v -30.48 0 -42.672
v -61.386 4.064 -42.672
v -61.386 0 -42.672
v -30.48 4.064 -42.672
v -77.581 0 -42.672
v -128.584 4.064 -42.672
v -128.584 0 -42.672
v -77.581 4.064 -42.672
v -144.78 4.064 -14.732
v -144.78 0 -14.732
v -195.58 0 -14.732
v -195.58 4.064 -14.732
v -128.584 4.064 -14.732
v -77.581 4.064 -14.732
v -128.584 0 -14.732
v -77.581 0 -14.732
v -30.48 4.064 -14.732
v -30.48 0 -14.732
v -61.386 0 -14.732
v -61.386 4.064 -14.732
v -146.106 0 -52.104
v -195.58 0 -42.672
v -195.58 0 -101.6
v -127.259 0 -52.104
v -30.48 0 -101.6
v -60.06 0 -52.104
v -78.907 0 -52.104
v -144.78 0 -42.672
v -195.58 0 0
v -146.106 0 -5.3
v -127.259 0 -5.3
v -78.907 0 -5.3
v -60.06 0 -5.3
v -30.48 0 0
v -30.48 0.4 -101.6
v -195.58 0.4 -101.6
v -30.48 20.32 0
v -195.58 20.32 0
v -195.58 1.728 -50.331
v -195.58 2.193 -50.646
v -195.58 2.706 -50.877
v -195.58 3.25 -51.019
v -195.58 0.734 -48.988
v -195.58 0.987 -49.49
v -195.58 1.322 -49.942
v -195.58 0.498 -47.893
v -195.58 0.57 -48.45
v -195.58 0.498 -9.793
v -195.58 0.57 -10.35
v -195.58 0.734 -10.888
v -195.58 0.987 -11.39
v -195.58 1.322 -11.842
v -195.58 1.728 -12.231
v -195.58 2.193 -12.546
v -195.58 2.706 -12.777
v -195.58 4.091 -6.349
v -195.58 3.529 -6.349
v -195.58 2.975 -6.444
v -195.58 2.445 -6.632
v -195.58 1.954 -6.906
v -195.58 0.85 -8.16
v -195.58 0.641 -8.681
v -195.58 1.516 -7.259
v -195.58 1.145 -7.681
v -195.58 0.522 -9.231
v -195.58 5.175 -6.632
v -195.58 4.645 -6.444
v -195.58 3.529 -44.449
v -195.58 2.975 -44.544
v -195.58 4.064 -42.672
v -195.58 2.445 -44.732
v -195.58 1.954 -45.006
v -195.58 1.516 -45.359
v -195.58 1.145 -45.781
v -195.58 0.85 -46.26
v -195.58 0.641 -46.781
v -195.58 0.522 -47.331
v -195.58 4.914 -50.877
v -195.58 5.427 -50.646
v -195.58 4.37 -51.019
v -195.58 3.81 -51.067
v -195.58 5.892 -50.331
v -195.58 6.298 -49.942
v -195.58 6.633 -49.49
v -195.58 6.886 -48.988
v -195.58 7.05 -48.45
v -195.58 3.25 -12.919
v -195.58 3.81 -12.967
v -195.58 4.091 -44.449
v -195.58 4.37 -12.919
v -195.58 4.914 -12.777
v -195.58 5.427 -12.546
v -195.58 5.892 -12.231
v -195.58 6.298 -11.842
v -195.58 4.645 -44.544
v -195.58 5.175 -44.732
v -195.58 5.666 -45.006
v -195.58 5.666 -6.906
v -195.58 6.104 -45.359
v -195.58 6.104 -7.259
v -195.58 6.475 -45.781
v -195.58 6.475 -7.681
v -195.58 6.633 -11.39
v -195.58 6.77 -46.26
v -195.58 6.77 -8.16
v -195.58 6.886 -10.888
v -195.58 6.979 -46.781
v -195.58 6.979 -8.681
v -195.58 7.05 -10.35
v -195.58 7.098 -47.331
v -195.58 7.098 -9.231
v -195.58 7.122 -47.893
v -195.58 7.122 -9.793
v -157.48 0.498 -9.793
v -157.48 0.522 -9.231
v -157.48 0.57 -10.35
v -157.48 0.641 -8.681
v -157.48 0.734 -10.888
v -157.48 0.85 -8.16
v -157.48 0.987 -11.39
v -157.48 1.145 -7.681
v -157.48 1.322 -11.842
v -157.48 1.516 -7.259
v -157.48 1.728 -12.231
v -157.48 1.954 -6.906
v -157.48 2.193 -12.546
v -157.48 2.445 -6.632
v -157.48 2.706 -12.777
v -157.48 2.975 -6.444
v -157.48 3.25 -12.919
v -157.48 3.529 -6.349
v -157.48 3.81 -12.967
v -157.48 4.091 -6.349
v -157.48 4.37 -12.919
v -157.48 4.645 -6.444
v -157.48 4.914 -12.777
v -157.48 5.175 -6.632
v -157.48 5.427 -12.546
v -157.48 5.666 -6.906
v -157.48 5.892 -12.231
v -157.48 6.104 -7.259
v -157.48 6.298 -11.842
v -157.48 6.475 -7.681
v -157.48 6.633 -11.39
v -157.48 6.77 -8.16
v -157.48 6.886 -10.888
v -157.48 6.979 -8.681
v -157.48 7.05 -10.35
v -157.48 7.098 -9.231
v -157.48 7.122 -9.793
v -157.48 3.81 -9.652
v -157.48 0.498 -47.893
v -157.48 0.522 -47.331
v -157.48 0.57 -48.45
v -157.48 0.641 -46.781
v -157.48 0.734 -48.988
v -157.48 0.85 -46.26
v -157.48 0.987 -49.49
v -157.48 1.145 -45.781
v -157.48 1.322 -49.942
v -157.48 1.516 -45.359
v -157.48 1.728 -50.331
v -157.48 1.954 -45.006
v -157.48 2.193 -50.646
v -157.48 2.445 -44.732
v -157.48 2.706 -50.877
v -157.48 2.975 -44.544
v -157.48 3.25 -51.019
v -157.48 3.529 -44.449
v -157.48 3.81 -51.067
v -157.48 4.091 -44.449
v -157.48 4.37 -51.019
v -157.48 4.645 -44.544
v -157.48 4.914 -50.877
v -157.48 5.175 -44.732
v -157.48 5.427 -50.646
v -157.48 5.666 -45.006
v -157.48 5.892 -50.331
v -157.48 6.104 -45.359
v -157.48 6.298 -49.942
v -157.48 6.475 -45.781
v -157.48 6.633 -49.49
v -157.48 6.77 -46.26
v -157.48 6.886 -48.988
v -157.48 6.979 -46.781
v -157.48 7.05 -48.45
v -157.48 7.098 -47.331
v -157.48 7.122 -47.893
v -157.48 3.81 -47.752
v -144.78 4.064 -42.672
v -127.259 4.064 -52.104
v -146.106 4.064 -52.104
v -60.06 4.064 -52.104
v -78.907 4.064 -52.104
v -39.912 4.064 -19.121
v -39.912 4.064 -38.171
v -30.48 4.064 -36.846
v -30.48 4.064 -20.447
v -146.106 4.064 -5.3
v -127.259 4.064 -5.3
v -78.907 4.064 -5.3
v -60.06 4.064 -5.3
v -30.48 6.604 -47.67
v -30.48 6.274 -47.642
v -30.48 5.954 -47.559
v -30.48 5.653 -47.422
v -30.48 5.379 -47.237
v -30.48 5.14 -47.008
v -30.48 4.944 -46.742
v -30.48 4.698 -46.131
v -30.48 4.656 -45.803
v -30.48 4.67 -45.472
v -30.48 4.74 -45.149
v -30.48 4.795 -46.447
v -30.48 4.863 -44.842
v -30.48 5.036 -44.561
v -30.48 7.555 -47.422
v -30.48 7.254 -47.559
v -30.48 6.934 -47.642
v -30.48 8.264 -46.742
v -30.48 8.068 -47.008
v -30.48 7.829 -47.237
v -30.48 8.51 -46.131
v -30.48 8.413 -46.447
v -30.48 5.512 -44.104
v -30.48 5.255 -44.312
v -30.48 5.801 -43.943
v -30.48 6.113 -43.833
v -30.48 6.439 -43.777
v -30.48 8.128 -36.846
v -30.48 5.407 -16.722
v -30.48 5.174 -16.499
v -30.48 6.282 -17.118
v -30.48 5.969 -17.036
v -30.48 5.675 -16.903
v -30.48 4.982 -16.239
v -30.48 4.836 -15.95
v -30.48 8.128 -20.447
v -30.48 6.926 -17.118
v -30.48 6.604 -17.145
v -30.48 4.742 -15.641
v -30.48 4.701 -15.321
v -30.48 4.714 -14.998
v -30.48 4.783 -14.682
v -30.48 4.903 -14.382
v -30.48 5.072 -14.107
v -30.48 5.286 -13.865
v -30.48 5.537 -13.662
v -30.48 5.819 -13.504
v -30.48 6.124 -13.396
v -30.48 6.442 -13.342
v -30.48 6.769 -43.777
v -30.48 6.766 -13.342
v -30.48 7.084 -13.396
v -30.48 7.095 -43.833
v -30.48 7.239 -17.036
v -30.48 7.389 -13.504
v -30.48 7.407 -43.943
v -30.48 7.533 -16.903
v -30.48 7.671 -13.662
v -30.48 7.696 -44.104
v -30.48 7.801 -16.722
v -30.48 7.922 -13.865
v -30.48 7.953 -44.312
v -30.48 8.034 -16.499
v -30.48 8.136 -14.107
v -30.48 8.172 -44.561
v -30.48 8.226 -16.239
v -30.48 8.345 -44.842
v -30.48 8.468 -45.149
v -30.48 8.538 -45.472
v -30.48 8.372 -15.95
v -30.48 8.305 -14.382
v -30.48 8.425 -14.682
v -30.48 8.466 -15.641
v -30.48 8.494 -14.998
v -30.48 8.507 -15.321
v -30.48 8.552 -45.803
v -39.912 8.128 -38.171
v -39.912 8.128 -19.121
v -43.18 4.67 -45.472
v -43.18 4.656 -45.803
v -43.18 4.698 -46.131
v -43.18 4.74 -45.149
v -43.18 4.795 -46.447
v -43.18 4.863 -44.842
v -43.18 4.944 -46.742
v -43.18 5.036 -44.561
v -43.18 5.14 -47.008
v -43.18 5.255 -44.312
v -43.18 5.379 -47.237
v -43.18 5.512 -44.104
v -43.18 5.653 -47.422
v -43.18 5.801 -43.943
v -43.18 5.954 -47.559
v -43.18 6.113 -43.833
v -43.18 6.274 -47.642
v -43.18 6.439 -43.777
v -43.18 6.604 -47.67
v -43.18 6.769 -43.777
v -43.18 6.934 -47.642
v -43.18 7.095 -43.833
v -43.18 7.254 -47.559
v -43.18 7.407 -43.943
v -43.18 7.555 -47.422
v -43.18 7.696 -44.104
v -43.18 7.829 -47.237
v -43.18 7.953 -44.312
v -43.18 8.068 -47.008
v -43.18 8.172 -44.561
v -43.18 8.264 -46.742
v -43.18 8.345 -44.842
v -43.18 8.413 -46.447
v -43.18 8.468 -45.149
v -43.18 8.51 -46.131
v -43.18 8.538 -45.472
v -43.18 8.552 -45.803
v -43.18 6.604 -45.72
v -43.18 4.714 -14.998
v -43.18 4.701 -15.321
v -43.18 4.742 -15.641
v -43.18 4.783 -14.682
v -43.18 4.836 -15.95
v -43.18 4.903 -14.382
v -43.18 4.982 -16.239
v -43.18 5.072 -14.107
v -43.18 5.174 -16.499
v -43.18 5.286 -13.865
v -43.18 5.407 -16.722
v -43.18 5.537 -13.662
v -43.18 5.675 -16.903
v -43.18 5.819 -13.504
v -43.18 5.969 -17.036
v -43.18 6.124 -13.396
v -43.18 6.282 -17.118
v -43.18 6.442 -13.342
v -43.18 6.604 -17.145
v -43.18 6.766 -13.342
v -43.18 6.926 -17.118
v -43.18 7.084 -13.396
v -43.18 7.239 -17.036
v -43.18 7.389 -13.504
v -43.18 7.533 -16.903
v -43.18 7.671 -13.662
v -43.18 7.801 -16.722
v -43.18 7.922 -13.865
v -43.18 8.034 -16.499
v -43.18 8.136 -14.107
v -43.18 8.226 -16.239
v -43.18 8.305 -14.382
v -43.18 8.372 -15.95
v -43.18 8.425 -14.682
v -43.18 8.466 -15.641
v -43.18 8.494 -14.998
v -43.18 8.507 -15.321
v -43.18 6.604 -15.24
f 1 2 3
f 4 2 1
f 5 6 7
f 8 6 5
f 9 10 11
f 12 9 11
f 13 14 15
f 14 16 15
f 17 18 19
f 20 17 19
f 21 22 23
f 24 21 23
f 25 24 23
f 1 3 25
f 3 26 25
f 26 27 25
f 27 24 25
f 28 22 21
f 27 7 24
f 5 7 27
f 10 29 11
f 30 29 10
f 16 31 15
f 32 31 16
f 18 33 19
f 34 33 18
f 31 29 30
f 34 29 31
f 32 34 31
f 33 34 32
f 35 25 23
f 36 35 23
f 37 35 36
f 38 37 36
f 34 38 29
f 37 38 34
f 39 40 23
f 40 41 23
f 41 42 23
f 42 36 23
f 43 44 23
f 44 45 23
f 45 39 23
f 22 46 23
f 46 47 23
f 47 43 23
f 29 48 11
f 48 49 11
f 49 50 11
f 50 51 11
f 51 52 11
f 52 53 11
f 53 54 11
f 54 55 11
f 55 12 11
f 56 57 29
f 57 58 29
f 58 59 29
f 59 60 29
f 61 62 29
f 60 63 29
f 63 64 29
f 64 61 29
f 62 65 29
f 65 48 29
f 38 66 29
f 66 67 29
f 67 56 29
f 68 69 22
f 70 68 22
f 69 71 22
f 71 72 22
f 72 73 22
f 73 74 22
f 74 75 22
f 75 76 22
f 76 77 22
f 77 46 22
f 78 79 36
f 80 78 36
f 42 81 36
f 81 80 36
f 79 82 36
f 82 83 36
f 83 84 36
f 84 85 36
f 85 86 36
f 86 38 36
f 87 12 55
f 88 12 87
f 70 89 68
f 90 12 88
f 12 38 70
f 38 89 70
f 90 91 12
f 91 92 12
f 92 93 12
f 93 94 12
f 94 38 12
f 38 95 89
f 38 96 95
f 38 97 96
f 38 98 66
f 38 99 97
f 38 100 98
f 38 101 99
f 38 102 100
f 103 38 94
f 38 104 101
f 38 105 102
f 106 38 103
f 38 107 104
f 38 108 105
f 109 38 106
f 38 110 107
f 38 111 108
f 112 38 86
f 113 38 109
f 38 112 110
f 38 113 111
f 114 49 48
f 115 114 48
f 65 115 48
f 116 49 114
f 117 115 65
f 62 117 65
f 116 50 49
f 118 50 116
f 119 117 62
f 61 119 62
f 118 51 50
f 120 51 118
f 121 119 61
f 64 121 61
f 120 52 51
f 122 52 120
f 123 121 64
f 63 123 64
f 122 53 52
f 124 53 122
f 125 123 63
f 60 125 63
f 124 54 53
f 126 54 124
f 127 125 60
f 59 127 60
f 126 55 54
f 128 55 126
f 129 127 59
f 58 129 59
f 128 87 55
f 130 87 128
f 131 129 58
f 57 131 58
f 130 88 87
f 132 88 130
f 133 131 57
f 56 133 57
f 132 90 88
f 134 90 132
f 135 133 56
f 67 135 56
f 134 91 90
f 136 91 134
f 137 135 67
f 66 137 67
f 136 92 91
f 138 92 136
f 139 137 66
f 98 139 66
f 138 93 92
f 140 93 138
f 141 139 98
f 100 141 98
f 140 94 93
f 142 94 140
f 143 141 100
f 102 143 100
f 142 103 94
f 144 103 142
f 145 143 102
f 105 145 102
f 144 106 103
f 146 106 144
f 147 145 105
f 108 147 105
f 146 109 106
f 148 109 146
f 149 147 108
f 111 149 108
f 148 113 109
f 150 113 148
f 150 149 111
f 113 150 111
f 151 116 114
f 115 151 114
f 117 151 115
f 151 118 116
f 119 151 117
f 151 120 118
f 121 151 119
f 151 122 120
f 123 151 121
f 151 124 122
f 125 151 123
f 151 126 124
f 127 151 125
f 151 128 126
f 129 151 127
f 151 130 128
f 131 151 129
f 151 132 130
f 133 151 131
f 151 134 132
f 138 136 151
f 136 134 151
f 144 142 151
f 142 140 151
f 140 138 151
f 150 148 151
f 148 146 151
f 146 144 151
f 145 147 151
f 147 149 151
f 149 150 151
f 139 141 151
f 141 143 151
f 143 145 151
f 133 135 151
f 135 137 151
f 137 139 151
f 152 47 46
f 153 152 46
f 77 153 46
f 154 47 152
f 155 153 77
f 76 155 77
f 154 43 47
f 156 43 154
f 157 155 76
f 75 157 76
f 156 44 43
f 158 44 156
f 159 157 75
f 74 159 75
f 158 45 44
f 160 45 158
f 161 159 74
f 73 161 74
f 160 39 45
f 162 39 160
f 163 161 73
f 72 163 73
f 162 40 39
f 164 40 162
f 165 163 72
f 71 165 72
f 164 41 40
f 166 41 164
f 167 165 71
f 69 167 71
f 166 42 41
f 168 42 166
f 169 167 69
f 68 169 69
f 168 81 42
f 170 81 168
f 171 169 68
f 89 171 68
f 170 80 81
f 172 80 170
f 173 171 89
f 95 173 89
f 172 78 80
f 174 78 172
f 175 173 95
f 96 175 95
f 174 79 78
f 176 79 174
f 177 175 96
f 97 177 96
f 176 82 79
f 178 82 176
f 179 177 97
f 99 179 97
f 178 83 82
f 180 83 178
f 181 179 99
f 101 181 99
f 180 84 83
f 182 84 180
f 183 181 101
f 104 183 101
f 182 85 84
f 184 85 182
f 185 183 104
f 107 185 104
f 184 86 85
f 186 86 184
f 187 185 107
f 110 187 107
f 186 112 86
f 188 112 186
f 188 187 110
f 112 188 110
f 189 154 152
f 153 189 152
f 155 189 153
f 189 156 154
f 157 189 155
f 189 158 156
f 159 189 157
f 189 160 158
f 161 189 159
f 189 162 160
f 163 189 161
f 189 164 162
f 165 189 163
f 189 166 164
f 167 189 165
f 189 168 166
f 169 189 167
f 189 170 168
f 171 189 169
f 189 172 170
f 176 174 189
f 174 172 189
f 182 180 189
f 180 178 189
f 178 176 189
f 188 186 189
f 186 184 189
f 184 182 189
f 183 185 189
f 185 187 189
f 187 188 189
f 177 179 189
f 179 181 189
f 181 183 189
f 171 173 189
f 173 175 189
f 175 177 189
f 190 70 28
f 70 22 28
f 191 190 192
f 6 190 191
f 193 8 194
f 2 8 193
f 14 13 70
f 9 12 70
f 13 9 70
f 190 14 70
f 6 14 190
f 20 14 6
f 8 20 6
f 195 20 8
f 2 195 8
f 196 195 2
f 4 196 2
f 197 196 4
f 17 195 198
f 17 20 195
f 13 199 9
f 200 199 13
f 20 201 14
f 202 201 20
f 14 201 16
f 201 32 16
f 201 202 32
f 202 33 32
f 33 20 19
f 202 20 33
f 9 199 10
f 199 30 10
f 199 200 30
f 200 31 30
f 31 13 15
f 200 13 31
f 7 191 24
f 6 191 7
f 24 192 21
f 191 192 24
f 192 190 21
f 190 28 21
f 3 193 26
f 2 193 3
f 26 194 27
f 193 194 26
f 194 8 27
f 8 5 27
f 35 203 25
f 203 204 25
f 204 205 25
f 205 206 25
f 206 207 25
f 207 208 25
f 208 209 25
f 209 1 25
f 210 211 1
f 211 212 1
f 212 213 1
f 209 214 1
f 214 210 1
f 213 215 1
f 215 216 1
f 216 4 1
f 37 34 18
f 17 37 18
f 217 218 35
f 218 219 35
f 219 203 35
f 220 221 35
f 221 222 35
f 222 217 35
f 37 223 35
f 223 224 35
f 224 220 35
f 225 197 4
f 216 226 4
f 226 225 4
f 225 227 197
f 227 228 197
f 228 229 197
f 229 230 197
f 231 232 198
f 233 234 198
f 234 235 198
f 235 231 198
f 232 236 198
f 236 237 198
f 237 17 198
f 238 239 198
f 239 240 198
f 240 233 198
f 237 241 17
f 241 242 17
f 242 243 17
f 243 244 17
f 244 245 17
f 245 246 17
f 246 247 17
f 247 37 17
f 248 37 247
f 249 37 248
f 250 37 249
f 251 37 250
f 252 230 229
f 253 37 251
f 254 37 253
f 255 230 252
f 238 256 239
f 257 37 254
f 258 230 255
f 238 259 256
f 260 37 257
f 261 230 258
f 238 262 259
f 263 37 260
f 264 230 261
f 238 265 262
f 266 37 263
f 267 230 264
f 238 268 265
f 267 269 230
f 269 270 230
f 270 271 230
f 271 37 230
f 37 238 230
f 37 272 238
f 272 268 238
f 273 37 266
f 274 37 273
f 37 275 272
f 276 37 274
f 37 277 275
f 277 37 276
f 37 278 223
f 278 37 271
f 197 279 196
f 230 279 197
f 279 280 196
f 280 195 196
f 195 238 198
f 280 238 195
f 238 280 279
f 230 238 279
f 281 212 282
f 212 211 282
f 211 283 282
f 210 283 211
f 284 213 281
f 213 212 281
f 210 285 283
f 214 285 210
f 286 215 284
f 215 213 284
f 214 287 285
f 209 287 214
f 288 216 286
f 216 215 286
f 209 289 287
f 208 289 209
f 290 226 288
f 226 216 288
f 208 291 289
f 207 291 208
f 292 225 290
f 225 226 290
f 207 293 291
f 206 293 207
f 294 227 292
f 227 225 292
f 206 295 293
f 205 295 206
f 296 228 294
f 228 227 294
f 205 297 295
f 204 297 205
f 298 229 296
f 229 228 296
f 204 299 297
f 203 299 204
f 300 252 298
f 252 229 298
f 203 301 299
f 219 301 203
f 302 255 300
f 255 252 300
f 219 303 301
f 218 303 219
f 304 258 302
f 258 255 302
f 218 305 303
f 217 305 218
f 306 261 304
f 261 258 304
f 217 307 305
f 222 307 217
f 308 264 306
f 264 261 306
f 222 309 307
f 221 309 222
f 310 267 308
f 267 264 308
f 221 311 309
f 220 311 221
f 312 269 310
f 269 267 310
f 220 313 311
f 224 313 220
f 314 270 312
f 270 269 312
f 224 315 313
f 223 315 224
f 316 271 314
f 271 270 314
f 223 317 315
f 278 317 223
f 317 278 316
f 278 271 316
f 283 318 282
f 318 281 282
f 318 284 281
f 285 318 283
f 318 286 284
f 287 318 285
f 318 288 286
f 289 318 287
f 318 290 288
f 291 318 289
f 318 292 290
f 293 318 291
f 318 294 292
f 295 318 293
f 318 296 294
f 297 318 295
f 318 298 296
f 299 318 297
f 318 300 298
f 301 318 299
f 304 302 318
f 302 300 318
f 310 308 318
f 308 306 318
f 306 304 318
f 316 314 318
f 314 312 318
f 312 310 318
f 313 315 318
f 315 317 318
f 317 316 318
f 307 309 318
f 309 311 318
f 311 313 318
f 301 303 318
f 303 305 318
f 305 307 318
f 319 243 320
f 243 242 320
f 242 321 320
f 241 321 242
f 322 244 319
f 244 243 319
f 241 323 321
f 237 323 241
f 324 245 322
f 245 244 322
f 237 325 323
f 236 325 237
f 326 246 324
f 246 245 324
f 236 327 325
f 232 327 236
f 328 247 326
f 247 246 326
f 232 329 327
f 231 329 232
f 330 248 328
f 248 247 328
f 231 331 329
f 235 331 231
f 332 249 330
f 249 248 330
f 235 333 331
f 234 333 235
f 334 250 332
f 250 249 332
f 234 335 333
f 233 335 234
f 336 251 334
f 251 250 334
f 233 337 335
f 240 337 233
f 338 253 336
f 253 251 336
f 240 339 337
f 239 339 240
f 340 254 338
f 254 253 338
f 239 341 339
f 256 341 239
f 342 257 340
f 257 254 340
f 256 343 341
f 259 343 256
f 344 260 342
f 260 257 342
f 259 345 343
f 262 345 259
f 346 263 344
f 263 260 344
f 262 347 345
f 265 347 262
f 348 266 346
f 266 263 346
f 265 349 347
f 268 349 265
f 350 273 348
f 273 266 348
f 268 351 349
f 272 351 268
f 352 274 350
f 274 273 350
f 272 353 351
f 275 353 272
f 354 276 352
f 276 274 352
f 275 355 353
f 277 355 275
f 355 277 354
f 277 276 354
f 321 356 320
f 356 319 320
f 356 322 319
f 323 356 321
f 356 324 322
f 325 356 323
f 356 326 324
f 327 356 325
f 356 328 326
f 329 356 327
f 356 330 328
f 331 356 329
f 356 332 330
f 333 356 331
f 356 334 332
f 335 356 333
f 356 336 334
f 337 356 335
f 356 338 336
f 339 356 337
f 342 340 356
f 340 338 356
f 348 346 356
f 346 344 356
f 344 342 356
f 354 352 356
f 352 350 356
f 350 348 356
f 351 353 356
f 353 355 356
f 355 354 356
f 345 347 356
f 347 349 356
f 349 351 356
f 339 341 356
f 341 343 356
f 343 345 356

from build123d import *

# Parameters (mm, degrees)
BOSS_EXTRUDE1_DEPTH = 195.58
SKETCH2_R           = 3.3147
CUT_EXTRUDE1_DEPTH  = 38.1
SKETCH3_W           = 27.94
SKETCH3_H           = 4.064
CUT_EXTRUDE2_DEPTH  = 405.649982083
CUT_EXTRUDE3_DEPTH  = 4.064
SKETCH7_W           = 101.6
SKETCH7_H           = 20.540040578
CUT_EXTRUDE5_DEPTH  = 226.06
CUT_EXTRUDE6_DEPTH  = 4.064
SKETCH10_R          = 1.905
SKETCH10_R_2        = 1.949893387
CUT_EXTRUDE7_DEPTH  = 12.7


with BuildPart() as part:
    # Sketch1 → Boss-Extrude1 (new, symmetric)
    with BuildSketch(Plane(origin=(0, 0, 0), x_dir=(0, 0, -1), z_dir=(1, 0, 0))):
        Polygon((0, 0), (0, 20.32), (101.6, 0.4), (101.6, 0), align=None)
    extrude(amount=BOSS_EXTRUDE1_DEPTH, both=True)

    # Sketch2 → Cut-Extrude1 (cut)
    with BuildSketch(Plane(origin=(195.58, 0, 0), x_dir=(0, 0, -1), z_dir=(1, 0, 0))):
        with Locations((9.652, 3.81)):
            Circle(SKETCH2_R)
        with Locations((47.752, 3.81)):
            Circle(SKETCH2_R)
    cut_extrude1 = extrude(amount=-CUT_EXTRUDE1_DEPTH, mode=Mode.SUBTRACT)

    # Mirror3: Cut-Extrude1 across plane
    add(cut_extrude1.mirror(Plane(origin=(0, 0, 0), x_dir=(0, 0, 1), z_dir=(1, 0, 0))), mode=Mode.SUBTRACT)

    # Sketch3 → Cut-Extrude2 (cut, through all)
    with BuildSketch(Plane.ZY.offset(195.58)):
        with Locations((-28.702, 2.032)):
            Rectangle(SKETCH3_W, SKETCH3_H)
    extrude(amount=-CUT_EXTRUDE2_DEPTH, mode=Mode.SUBTRACT)

    # Sketch4 → Cut-Extrude3 (cut)
    with BuildSketch(Plane.XZ):
        Polygon((-144.78, -42.672), (-146.105623787, -52.104303355), (-144.78, -52.104303355), (-128.584447573, -52.104303355), (-127.258823787, -52.104303355), (-128.584447573, -42.672), align=None)
        Polygon((-77.581247573, -42.672), (-78.90687136, -52.104303355), (-77.581247573, -52.104303355), (-61.385695147, -52.104303355), (-60.06007136, -52.104303355), (-61.385695147, -42.672), align=None)
        Polygon((-10.382495147, -42.672), (-11.708118933, -52.104303355), (-10.382495147, -52.104303355), (5.81305728, -52.104303355), (7.138681067, -52.104303355), (5.81305728, -42.672), align=None)
        Polygon((56.81625728, -42.672), (55.490633493, -52.104303355), (56.81625728, -52.104303355), (73.011809707, -52.104303355), (74.337433493, -52.104303355), (73.011809707, -42.672), align=None)
        Polygon((124.015009707, -42.672), (122.68938592, -52.104303355), (124.015009707, -52.104303355), (140.210562134, -52.104303355), (141.53618592, -52.104303355), (140.210562134, -42.672), align=None)
        Polygon((124.015009707, -14.732), (140.210562134, -14.732), (141.53618592, -5.299696645), (140.210562134, -5.299696645), (124.015009707, -5.299696645), (122.68938592, -5.299696645), align=None)
        Polygon((56.81625728, -14.732), (73.011809707, -14.732), (74.337433493, -5.299696645), (73.011809707, -5.299696645), (56.81625728, -5.299696645), (55.490633493, -5.299696645), align=None)
        Polygon((-10.382495147, -14.732), (5.81305728, -14.732), (7.138681067, -5.299696645), (5.81305728, -5.299696645), (-10.382495147, -5.299696645), (-11.708118933, -5.299696645), align=None)
        Polygon((-77.581247573, -14.732), (-61.385695147, -14.732), (-60.06007136, -5.299696645), (-61.385695147, -5.299696645), (-77.581247573, -5.299696645), (-78.90687136, -5.299696645), align=None)
        Polygon((-144.78, -14.732), (-128.584447573, -14.732), (-127.258823787, -5.299696645), (-128.584447573, -5.299696645), (-144.78, -5.299696645), (-146.105623787, -5.299696645), align=None)
    extrude(amount=-CUT_EXTRUDE3_DEPTH, mode=Mode.SUBTRACT)

    # Sketch7 → Cut-Extrude5 (cut)
    with BuildSketch(Plane(origin=(195.58, 0, 0), x_dir=(0, 0, -1), z_dir=(1, 0, 0))):
        with Locations((50.8, 10.270020289)):
            Rectangle(SKETCH7_W, SKETCH7_H)
    extrude(amount=-CUT_EXTRUDE5_DEPTH, mode=Mode.SUBTRACT)

    # Sketch9 → Cut-Extrude6 (cut)
    with BuildSketch(Plane.XZ.offset(-4.064)):
        Polygon((-30.48, -20.447), (-39.912303355, -19.121376213), (-39.912303355, -38.171376213), (-30.48, -36.845752427), align=None)
    extrude(amount=-CUT_EXTRUDE6_DEPTH, mode=Mode.SUBTRACT)

    # Sketch10 → Cut-Extrude7 (cut)
    with BuildSketch(Plane(origin=(-30.48, 0, 0), x_dir=(0, 0, -1), z_dir=(1, 0, 0))):
        with Locations((15.24, 6.604)):
            Circle(SKETCH10_R)
        with Locations((45.72, 6.604)):
            Circle(SKETCH10_R_2)
    extrude(amount=-CUT_EXTRUDE7_DEPTH, mode=Mode.SUBTRACT)


solid = part.part
